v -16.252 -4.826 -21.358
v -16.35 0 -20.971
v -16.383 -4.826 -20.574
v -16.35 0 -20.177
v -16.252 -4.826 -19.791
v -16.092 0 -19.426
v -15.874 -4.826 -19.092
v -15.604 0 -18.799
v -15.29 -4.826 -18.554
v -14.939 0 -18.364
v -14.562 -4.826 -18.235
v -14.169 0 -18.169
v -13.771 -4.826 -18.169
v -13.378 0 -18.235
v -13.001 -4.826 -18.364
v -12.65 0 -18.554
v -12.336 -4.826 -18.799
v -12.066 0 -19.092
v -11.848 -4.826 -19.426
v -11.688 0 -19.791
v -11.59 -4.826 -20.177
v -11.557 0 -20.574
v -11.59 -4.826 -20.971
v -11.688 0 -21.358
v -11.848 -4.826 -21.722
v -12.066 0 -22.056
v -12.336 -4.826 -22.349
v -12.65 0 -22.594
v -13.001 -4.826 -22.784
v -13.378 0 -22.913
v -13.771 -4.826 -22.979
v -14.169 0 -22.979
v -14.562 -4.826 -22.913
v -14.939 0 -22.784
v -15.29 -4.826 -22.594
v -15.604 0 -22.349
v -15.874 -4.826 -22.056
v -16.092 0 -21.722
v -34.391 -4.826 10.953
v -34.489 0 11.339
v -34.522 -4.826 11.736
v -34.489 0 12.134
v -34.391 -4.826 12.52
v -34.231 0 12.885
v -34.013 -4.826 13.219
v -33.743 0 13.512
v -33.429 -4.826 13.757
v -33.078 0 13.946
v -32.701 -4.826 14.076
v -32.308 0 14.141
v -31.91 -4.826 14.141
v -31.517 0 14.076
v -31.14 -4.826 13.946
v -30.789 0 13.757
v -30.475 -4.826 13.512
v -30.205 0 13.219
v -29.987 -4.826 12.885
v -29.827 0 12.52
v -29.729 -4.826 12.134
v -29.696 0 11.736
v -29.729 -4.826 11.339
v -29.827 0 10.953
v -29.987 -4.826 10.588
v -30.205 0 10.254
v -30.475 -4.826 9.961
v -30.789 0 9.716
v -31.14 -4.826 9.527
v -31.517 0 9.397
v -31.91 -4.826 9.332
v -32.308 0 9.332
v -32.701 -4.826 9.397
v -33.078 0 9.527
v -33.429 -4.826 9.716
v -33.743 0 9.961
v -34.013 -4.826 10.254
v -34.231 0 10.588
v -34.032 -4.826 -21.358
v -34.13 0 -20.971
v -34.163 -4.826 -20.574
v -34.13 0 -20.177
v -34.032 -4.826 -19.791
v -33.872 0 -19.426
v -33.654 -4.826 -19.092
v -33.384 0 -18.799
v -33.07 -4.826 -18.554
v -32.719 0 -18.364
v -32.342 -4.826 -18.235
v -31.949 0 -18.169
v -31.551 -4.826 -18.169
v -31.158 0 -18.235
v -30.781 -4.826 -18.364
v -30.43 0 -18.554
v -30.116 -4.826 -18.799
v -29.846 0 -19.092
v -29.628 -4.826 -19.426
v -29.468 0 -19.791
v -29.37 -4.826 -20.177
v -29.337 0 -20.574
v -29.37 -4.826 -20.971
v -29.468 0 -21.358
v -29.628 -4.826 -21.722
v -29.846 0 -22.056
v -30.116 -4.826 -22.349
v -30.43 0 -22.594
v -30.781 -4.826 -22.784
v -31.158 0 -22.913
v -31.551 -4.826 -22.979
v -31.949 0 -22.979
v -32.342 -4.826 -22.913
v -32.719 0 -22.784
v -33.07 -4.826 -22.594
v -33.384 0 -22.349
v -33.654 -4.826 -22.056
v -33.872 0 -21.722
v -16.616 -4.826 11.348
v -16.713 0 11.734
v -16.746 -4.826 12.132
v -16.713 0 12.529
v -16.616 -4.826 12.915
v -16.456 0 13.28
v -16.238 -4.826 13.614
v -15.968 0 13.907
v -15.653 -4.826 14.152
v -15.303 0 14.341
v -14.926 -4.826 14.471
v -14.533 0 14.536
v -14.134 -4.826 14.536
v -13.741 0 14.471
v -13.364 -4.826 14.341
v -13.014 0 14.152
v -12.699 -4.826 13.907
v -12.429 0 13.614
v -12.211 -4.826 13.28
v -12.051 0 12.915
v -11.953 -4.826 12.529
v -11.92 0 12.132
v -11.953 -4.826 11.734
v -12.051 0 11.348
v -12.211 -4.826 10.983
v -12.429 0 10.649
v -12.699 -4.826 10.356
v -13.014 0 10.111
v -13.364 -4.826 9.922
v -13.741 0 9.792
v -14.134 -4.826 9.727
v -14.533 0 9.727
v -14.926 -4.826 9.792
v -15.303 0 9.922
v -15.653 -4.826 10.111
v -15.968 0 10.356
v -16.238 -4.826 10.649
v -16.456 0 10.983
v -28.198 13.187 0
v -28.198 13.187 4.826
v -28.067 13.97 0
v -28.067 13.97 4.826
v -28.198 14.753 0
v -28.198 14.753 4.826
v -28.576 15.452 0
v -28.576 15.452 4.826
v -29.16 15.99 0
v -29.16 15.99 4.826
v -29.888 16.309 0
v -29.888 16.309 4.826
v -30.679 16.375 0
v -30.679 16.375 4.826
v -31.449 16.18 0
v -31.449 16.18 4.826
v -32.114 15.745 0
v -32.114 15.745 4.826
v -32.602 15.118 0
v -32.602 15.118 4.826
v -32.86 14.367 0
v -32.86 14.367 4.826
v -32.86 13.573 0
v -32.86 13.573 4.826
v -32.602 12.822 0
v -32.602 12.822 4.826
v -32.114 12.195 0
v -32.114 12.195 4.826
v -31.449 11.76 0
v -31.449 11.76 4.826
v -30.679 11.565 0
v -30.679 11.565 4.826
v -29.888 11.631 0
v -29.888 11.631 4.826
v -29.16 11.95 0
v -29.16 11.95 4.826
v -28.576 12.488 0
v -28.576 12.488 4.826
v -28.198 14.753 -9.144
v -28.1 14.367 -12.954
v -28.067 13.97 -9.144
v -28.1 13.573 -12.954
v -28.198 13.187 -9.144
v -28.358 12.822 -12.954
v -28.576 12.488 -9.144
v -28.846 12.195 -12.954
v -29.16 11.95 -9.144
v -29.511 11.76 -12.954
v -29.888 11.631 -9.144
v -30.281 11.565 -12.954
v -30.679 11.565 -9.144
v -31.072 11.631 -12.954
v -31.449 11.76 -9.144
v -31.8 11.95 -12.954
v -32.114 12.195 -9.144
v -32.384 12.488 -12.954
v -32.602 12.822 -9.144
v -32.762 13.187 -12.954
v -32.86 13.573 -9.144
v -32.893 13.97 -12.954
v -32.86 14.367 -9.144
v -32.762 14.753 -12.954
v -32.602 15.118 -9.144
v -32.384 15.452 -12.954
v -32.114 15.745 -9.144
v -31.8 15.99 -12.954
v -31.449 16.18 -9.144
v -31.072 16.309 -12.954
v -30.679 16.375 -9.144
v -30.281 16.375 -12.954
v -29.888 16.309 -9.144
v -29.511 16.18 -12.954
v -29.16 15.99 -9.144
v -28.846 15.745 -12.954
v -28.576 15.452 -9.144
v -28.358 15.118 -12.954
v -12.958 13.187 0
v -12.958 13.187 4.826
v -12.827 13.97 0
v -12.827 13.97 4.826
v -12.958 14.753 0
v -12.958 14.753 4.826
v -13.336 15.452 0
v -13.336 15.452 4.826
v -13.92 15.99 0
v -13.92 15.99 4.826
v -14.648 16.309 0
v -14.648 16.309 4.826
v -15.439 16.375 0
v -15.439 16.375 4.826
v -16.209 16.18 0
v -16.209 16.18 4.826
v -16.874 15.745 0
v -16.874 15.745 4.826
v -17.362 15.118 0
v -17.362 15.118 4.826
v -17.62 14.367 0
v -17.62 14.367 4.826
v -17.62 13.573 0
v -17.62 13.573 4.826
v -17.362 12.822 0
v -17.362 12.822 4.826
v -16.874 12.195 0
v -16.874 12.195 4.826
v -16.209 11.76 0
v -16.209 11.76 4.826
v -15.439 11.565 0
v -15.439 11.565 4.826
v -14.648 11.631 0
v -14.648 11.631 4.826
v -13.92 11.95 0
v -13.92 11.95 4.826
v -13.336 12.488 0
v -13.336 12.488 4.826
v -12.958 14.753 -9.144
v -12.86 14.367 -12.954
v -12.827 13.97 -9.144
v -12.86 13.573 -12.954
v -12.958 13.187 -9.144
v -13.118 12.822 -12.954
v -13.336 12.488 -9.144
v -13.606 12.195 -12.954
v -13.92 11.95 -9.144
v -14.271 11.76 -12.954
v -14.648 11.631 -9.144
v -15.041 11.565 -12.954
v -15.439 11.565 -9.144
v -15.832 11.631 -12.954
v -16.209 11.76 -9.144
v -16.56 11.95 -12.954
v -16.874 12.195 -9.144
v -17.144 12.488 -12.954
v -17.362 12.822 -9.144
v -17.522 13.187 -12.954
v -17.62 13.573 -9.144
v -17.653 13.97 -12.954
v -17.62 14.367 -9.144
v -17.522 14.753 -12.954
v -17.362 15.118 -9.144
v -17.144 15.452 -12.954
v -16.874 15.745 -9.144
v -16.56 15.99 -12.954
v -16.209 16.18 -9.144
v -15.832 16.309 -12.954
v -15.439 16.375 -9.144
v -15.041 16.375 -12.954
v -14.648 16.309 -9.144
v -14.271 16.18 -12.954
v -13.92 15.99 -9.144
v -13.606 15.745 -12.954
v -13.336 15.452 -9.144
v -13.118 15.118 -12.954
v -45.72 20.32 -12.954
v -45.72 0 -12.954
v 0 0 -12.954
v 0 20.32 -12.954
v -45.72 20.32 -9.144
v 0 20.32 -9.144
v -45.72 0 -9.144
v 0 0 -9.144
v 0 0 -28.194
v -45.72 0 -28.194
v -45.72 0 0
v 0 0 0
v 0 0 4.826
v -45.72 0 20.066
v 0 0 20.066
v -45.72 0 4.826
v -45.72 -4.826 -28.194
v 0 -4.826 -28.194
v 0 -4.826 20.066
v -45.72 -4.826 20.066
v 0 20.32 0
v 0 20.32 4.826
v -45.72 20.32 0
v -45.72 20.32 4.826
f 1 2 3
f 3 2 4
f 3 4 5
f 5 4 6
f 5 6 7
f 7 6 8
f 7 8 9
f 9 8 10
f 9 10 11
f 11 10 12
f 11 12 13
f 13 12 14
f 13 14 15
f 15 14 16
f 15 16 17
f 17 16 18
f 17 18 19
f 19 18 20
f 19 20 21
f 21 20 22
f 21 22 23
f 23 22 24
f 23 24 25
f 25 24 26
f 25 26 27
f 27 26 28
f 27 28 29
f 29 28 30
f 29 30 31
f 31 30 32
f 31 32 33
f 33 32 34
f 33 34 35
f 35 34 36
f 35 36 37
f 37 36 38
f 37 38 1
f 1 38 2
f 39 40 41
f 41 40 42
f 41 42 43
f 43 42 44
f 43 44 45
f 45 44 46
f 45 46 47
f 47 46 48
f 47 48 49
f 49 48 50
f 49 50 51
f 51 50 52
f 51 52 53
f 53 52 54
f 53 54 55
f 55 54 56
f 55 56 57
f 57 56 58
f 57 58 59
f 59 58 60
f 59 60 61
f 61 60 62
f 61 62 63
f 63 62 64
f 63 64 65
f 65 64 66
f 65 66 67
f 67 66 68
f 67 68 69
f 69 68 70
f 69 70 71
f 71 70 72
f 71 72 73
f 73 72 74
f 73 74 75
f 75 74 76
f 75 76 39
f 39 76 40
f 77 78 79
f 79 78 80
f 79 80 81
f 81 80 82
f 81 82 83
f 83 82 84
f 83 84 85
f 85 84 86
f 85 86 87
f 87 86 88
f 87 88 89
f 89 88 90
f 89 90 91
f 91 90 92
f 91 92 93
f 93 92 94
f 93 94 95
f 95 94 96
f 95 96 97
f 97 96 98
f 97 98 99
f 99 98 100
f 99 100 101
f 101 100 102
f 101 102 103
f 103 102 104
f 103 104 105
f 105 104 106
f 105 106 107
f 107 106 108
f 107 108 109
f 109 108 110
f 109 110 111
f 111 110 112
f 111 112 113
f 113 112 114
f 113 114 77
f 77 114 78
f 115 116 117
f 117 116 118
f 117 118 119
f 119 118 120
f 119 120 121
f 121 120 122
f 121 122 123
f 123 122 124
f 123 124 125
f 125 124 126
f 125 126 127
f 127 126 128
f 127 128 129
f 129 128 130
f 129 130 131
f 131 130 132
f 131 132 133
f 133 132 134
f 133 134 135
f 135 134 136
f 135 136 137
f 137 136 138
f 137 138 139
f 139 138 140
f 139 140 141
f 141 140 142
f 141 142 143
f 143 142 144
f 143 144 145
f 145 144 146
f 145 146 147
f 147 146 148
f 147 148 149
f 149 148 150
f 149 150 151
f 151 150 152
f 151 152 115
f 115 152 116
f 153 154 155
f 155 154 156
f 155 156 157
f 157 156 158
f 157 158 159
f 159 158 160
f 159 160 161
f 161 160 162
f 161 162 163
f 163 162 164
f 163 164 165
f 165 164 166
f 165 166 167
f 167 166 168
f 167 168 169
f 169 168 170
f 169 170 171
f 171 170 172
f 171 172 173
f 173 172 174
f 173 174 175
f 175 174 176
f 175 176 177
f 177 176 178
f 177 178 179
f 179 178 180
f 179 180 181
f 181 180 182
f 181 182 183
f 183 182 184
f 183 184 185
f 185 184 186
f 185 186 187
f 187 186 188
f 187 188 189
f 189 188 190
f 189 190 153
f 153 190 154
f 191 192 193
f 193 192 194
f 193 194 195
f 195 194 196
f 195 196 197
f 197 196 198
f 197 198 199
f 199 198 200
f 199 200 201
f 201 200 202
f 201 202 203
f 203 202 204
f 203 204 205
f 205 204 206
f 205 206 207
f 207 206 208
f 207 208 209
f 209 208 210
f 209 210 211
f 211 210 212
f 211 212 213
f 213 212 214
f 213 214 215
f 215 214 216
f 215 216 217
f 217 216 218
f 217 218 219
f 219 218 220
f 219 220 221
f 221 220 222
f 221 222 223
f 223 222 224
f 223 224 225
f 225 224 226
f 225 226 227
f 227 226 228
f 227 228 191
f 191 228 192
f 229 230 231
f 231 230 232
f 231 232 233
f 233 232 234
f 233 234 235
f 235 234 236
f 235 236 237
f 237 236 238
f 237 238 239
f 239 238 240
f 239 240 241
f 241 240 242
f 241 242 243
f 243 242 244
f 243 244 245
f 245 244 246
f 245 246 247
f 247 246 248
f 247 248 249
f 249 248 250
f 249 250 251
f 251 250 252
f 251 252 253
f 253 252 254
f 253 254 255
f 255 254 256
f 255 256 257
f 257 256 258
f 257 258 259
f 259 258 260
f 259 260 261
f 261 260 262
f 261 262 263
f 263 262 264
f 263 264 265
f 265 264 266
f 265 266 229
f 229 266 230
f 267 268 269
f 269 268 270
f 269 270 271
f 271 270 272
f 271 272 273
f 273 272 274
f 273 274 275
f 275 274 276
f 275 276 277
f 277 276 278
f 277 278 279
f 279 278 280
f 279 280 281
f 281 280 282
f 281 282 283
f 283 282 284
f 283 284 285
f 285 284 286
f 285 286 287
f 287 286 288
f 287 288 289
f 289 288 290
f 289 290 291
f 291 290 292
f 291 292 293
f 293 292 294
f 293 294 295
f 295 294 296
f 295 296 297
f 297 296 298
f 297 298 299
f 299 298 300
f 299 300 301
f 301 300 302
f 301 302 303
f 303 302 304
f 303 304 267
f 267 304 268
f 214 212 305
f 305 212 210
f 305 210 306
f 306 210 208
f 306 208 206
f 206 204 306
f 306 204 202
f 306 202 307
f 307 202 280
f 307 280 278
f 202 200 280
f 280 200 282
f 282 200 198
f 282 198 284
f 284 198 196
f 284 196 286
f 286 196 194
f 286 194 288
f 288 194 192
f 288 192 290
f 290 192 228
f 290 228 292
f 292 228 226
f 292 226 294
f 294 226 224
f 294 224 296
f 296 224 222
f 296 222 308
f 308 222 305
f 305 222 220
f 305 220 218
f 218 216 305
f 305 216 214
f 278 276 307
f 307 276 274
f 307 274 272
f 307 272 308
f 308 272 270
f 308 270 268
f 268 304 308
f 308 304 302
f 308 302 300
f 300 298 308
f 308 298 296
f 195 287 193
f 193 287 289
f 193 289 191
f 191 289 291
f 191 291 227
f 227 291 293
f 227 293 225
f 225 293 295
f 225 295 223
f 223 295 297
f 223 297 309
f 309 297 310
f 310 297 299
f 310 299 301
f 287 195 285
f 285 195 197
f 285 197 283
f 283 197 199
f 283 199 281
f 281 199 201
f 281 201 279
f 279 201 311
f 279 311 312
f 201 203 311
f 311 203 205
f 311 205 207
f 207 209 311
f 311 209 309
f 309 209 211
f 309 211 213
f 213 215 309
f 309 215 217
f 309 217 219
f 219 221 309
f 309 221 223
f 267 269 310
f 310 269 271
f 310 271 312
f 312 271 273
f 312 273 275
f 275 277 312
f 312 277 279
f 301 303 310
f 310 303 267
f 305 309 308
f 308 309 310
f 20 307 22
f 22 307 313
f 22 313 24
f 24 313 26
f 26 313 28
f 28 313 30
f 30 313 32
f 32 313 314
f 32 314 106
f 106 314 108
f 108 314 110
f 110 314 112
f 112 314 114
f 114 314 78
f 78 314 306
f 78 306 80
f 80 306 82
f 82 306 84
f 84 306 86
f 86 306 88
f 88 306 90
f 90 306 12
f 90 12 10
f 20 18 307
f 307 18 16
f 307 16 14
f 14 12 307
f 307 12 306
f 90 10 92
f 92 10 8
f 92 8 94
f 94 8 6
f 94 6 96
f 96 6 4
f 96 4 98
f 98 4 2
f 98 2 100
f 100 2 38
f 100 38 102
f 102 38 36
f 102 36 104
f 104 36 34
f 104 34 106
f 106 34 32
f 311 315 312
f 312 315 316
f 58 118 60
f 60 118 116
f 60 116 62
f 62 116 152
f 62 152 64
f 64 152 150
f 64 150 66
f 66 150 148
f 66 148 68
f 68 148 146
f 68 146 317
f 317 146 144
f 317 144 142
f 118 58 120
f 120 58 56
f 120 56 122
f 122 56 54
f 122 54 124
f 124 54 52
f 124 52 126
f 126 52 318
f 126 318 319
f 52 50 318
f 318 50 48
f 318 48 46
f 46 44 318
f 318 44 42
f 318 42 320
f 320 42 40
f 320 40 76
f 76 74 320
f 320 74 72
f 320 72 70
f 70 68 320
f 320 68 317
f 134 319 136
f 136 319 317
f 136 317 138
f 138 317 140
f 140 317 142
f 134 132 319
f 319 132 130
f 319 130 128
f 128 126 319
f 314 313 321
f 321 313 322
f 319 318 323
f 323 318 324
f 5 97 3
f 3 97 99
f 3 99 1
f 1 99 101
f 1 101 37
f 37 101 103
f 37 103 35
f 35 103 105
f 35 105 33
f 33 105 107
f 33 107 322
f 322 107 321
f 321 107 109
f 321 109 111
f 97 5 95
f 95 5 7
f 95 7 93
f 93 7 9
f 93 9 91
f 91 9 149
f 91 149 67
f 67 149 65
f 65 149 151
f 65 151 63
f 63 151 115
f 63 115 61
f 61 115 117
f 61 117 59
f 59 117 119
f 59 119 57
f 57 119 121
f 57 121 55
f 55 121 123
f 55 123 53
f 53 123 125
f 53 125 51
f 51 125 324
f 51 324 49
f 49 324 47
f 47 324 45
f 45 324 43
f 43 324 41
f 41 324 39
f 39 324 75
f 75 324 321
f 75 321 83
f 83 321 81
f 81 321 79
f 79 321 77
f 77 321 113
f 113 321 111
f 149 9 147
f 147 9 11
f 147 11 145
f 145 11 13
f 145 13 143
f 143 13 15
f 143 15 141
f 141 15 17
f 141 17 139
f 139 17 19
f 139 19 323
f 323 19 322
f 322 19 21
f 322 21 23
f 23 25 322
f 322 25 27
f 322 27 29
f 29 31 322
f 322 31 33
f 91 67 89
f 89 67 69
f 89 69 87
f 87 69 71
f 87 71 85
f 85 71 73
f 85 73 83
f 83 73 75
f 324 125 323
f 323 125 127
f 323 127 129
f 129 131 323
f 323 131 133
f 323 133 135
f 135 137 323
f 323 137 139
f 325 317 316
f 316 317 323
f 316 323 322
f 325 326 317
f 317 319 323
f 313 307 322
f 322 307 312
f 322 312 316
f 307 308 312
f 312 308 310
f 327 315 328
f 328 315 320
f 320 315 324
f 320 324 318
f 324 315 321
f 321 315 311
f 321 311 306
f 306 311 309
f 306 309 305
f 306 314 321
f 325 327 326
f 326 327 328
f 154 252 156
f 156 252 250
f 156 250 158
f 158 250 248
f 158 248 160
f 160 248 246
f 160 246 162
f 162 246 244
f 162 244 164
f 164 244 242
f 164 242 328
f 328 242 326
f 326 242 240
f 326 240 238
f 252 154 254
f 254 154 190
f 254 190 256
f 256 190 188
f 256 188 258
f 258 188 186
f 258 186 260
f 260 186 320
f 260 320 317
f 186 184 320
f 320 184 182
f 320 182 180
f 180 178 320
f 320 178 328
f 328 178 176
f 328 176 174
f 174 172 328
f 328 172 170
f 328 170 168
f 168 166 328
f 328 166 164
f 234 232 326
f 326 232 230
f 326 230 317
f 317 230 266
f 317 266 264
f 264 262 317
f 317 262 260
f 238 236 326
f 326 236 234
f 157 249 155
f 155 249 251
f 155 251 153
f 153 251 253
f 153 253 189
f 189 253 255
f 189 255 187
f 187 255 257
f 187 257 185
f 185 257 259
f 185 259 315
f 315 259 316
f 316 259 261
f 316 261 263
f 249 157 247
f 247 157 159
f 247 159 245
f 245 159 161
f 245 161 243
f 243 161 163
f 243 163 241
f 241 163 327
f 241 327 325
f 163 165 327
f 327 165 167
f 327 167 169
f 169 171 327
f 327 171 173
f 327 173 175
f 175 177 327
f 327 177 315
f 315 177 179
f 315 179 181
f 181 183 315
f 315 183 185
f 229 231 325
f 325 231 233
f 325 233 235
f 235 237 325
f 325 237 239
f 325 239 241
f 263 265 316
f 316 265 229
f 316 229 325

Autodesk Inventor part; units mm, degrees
ref_plane "YZ Plane" through (0, 0, 0) normal (1, 0, 0) x (0, 1, 0)
ref_plane "XZ Plane" through (0, 0, 0) normal (0, 1, 0) x (-1, 0, 0)
ref_plane "XY Plane" through (0, 0, 0) normal (0, 0, 1) x (1, 0, 0)
sketch "Sketch1" plane through (0, 0, 0) normal (0, 0, 1) x (1, 0, 0)
  line L0 (0, 0) -> (-45.72, 0)
  line L1 (-45.72, 0) -> (-45.72, 20.32)
  line L2 (-45.72, 20.32) -> (0, 20.32)
  line L3 (0, 20.32) -> (0, 0)
  dimension "d0" = 45.72
  dimension "d1" = 20.32
extrude "Extrusion1" add sketch "Sketch1" along normal blind 4.826
sketch "Sketch2" plane through (-45.72, 0, 0) normal (0, -1, 0) x (1, 0, 0)
  line L0 (45.72, 0) -> (45.72, 4.826) projected
  line L1 (0, 0) -> (0, 4.826) projected
  line L2 (0, 0) -> (45.72, 0) projected
  line L3 (0, 4.826) -> (45.72, 4.826) projected
  line L4 (45.72, 0) -> (45.72, -28.194)
  line L5 (45.72, 4.826) -> (45.72, 20.066)
  line L6 (45.72, 20.066) -> (0, 20.066)
  line L7 (0, 20.066) -> (0, 4.826)
  line L8 (0, 0) -> (0, -28.194)
  line L9 (0, -28.194) -> (45.72, -28.194)
  line L10 (45.72, 0) -> (45.72, 4.826)
  line L11 (0, 4.826) -> (0, 0)
  dimension "d4" = 28.194
  dimension "d5" = 15.24
extrude "Extrusion2" add sketch "Sketch2" along normal blind 4.826
sketch "Sketch3" plane through (-45.72, 0, 0) normal (0, 1, 0) x (1, 0, 0)
  line L0 (45.72, 0) -> (0, 0) projected
  line L1 (45.72, 28.194) -> (45.72, 0) projected
  line L2 (0, 28.194) -> (45.72, 28.194) projected
  line L3 (0, 0) -> (0, 28.194) projected
  line L4 (22.86, 0) -> (22.86, 9.144) construction
  line L5 (22.86, 9.144) -> (45.72, 9.144)
  line L6 (22.86, 9.144) -> (0, 9.144)
  line L7 (45.72, 9.144) -> (45.72, 12.954)
  line L8 (45.72, 28.194) -> (45.72, -20.066) projected
  line L9 (45.72, 12.954) -> (0, 12.954)
  line L10 (0, 12.954) -> (0, 9.144)
  dimension "d8" = 9.144
  dimension "d9" = 3.81
extrude "Extrusion3" add sketch "Sketch3" along normal blind 20.32 contours L5 L6 L3 L9 L1
sketch "Sketch4" plane through (0, 0, -12.954) normal (0, 0, -1) x (-1, 0, 0)
  line L0 (0, 0) -> (0, 20.32) projected
  line L1 (0, 20.32) -> (45.72, 20.32) projected
  line L2 (45.72, 0) -> (45.72, 20.32) projected
  line L3 (45.72, 0) -> (0, 0) projected
  line L4 (22.86, 20.32) -> (22.86, 13.97) construction
  line L5 (22.86, 13.97) -> (30.48, 13.97) construction
  circle A0 centre (30.48, 13.97) radius 2.413
  circle A1 centre (15.24, 13.97) radius 2.413
  dimension "d12" = 6.35
  dimension "d13" = 7.62
  dimension "d14" = 4.826
extrude "Extrusion4" cut sketch "Sketch4" against normal through all contours A0 | A1
sketch "Sketch5" plane through (-45.72, 0, 0) normal (0, 1, 0) x (1, 0, 0)
  line L0 (45.72, 12.954) -> (0, 12.954) projected
  line L1 (0, 28.194) -> (45.72, 28.194) projected
  line L2 (45.72, 28.194) -> (45.72, 12.954) construction
  line L3 (0, 12.954) -> (0, 28.194) projected
  line L4 (45.72, 28.194) -> (45.72, -20.066) projected
  line L5 (45.72, 28.194) -> (45.72, 12.954) construction
  line L6 (45.72, 20.574) -> (0, 20.574) construction
  line L7 (22.86, 12.954) -> (22.86, 20.574) construction
  line L8 (22.86, 20.574) -> (13.97, 20.574) construction
  line L9 (22.86, 20.574) -> (31.75, 20.574) construction
  circle A0 centre (31.75, 20.574) radius 2.413
  circle A1 centre (13.97, 20.574) radius 2.413
  line L10 (45.72, 4.064) -> (0, 4.572) construction
  line L11 (0, 0) -> (0, 9.144) projected
  circle A2 centre (31.3866, -12.1315) radius 2.413
  circle A3 centre (13.611, -11.7365) radius 2.413
  point P0 (45.72, 0)
  dimension "d17" = 8.89
  dimension "d18" = 8.89
  dimension "d19" = 4.826
  dimension "d20" = 4.826
extrude "Extrusion5" cut sketch "Sketch5" against normal through all contours A0 | A1 | A2 | A3
properties part number "arm_to_tower_adapter"
